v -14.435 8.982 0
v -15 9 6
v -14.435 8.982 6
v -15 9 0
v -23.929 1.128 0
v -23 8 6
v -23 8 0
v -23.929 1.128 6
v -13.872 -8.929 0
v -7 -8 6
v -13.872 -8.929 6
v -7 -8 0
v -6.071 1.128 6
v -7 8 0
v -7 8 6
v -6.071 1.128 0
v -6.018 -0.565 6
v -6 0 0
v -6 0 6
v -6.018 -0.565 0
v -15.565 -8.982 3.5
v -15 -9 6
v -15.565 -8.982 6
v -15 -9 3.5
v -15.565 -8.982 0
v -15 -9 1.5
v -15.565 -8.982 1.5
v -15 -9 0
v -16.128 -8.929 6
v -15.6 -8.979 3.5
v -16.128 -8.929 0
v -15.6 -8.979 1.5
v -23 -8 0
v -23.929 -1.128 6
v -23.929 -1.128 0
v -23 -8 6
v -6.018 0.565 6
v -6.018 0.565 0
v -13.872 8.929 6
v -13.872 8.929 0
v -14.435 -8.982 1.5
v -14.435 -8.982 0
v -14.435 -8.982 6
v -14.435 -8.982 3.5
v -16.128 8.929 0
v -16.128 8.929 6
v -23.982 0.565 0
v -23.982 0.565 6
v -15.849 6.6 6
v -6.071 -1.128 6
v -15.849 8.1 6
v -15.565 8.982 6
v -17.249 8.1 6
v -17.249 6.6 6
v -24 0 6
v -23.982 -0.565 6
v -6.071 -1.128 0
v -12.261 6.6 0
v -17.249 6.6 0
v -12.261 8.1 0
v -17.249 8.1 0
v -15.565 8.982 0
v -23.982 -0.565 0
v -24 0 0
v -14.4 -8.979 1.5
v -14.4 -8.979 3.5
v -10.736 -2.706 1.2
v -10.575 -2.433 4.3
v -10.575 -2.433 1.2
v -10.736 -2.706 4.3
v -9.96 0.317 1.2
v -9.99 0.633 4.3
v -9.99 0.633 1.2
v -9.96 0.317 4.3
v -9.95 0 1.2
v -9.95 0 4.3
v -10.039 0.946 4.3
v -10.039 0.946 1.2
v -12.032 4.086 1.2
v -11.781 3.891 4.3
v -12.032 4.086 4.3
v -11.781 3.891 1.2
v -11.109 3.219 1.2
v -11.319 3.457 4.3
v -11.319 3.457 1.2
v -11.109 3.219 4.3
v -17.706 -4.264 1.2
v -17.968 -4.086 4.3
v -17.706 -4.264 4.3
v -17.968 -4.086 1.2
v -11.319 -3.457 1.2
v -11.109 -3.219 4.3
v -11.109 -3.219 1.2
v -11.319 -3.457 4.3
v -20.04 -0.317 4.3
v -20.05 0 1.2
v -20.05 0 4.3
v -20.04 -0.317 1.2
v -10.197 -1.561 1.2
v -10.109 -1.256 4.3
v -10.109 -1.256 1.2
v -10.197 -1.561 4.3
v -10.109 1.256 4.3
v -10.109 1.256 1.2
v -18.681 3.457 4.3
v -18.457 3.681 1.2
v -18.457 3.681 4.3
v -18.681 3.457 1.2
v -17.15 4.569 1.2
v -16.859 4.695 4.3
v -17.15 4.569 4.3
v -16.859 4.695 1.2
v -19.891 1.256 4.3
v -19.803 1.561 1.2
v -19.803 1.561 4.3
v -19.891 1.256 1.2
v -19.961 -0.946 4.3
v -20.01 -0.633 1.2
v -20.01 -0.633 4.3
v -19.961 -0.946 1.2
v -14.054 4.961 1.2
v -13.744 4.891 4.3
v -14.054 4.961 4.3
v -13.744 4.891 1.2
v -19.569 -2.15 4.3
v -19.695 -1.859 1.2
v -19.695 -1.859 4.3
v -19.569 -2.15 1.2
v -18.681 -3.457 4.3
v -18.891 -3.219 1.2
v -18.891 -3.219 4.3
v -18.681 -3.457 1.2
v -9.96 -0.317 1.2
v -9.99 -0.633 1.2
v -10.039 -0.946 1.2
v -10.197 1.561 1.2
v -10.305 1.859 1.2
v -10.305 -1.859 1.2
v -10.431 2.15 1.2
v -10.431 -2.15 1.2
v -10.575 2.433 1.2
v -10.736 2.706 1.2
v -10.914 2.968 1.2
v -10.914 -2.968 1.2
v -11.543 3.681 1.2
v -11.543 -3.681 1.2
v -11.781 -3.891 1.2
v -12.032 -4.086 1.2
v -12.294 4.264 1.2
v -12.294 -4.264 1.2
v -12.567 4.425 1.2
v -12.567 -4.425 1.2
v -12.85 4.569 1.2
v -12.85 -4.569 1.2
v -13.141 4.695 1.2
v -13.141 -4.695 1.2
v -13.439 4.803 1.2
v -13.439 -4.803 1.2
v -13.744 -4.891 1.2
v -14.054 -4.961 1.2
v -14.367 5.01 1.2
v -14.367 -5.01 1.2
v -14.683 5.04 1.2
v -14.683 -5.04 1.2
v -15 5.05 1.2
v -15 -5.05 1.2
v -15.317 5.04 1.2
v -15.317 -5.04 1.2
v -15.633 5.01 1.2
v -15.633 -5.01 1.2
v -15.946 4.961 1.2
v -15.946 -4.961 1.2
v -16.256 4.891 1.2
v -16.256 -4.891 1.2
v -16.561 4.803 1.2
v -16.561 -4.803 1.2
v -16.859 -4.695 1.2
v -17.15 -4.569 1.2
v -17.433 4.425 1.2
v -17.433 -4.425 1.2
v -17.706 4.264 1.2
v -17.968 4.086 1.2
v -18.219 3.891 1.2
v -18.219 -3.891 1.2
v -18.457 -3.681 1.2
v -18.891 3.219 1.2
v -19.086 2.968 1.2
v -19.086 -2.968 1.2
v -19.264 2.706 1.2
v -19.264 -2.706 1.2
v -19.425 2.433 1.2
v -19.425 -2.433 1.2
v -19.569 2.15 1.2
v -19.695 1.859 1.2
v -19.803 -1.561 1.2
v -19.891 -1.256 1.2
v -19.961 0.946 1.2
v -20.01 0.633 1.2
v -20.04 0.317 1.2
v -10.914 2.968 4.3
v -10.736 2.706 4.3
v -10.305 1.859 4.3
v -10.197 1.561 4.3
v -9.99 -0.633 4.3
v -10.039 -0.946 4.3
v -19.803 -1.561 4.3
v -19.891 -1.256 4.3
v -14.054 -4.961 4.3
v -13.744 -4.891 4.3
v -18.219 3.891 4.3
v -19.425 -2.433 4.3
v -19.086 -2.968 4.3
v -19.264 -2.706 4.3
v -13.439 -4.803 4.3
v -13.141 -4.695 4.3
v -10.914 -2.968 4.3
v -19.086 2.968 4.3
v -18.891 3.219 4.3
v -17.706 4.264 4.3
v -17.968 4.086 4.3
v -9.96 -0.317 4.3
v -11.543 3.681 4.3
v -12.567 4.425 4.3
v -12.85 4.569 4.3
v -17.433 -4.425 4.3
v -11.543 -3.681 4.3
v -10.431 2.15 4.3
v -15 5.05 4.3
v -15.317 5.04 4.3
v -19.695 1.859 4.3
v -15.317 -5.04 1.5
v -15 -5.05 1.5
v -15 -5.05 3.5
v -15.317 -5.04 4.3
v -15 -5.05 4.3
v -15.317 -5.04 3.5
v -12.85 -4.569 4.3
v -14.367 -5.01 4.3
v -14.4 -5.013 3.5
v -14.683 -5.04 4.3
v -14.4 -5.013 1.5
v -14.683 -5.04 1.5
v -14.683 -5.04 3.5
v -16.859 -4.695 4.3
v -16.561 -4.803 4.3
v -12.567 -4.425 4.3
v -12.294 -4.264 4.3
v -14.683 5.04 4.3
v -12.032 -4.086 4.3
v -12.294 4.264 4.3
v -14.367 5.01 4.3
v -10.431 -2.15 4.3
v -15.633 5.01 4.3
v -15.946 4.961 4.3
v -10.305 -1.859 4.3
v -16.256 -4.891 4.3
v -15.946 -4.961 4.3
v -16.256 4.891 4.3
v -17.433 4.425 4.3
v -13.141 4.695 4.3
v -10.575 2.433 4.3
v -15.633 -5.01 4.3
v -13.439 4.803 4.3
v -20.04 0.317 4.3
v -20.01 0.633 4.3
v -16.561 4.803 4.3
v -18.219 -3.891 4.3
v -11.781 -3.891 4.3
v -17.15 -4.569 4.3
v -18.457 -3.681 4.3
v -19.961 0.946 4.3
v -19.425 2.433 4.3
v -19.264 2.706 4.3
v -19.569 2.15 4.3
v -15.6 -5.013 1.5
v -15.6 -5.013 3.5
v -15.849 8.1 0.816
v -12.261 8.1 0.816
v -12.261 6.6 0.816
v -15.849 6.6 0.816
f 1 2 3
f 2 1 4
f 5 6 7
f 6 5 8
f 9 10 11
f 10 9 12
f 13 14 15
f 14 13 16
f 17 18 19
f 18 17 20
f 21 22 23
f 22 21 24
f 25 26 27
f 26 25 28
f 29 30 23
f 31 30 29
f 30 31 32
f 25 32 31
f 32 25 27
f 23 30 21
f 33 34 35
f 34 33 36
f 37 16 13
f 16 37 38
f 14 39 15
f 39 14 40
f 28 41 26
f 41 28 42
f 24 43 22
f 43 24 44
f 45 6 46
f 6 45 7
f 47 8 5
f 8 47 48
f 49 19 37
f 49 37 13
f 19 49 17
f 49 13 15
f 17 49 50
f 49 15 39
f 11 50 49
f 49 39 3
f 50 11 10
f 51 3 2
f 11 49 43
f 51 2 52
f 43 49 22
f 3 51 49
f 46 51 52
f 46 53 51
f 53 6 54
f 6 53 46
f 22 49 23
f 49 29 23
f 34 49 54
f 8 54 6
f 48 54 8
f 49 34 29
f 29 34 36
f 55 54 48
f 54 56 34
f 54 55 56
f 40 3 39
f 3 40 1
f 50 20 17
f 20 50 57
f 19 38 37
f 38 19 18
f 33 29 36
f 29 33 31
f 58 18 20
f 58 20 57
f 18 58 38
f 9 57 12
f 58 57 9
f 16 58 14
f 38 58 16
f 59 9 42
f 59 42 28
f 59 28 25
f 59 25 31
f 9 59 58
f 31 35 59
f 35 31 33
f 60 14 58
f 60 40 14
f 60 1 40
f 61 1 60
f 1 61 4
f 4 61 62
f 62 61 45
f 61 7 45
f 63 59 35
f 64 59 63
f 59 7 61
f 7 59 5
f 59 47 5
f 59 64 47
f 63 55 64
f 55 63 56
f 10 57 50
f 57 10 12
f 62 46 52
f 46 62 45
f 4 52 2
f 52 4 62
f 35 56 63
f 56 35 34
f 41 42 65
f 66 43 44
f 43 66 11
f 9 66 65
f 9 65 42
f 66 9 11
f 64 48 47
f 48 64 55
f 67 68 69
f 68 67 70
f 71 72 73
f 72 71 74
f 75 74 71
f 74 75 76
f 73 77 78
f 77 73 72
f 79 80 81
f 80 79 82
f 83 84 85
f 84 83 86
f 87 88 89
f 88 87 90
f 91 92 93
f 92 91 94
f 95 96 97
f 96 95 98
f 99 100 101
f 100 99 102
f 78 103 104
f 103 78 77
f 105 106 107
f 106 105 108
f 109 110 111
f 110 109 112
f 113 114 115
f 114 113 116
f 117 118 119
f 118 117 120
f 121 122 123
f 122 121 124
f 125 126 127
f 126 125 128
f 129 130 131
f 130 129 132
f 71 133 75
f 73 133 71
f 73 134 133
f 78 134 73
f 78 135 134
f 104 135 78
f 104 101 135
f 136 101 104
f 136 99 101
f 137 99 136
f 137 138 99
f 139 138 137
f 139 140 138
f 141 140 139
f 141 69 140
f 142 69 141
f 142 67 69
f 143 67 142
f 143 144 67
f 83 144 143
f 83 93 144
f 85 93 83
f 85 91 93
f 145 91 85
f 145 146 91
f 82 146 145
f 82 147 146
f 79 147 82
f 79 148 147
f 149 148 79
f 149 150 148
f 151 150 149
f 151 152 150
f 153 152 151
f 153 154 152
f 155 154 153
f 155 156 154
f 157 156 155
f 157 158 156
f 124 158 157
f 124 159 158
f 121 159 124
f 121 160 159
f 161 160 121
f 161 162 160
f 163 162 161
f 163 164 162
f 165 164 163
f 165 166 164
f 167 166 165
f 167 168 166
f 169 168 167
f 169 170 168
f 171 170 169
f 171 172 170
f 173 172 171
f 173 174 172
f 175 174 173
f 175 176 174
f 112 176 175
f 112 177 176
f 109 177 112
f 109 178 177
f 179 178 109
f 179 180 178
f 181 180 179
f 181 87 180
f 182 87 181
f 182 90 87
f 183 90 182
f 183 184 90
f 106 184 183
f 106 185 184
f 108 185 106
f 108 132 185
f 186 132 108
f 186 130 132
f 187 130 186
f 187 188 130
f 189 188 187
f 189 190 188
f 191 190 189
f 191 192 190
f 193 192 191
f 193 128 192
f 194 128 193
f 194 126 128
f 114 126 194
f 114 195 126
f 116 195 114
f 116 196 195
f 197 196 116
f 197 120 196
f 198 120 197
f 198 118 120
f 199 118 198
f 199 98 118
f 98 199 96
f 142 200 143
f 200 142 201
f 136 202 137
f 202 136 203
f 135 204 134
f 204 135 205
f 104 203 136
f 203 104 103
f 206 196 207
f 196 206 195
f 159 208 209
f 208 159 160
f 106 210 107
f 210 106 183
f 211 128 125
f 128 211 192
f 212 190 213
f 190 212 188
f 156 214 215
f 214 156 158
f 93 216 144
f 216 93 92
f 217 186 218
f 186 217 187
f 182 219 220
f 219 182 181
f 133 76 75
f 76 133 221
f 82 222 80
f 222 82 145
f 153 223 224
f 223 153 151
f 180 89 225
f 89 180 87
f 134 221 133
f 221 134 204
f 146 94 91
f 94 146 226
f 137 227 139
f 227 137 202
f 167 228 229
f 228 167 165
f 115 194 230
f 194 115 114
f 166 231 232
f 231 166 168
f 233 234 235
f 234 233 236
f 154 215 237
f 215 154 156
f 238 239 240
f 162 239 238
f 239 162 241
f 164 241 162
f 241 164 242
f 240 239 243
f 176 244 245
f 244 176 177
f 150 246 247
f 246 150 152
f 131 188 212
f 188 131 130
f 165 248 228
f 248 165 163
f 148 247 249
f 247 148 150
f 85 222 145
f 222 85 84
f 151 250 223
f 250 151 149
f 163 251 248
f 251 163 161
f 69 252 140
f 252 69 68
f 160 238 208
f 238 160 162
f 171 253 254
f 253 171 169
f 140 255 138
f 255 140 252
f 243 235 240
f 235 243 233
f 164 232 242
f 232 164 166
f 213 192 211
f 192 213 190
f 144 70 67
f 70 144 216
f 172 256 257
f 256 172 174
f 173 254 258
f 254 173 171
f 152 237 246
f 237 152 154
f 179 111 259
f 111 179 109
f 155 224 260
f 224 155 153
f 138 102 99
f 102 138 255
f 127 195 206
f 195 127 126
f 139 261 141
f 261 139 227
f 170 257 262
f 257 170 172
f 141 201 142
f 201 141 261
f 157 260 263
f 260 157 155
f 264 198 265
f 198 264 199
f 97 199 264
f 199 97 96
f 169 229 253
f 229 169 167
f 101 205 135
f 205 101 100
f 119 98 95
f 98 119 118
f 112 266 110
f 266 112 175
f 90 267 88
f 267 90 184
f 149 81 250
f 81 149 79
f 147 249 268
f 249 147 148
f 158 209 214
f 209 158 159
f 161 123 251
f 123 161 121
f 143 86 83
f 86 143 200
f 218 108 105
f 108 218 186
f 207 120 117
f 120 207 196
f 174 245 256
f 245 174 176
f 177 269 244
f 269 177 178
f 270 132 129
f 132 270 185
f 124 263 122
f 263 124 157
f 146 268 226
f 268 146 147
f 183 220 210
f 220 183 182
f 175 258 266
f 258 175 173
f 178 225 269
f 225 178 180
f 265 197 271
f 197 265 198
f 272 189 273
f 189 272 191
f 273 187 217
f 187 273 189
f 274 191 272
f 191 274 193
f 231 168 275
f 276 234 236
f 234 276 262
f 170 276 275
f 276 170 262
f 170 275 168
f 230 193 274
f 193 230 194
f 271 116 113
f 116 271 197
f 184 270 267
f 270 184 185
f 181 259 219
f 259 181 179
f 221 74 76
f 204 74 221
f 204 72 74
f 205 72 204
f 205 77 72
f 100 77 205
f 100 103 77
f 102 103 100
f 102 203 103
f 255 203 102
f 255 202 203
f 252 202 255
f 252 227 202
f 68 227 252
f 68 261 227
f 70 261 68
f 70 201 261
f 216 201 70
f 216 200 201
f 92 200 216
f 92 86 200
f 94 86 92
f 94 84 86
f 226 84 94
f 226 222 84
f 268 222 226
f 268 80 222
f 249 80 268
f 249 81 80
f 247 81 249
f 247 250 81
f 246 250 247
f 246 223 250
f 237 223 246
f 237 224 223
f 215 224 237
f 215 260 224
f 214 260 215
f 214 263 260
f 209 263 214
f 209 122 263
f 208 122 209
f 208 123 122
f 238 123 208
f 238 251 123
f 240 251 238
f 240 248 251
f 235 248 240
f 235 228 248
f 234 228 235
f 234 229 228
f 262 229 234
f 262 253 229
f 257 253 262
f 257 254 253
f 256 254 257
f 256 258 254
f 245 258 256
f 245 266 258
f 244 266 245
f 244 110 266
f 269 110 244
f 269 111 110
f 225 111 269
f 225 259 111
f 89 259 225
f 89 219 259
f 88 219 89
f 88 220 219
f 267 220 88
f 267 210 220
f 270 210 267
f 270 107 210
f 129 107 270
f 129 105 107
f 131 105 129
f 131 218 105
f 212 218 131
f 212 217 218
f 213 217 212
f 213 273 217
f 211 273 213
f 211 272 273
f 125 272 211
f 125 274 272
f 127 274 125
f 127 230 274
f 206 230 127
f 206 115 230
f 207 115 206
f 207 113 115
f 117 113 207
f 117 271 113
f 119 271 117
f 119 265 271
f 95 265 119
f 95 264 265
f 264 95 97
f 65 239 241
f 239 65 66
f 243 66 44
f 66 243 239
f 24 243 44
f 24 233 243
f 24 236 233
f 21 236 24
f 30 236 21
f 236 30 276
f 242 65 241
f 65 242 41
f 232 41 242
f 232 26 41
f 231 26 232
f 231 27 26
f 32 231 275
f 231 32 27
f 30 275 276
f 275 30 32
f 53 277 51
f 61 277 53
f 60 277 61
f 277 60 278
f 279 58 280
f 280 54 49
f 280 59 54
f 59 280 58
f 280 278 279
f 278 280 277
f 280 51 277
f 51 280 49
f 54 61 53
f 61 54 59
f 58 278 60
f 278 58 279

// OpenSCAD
// V51 Pacer Saddle - Optimized for Vybronics VG1030001XH
// Specs: 10mm Dia, 3mm Thick, AWG 30 Leads

module v51_saddle(side_label) {
    difference() {
        // Main Body: Curved to sit against headphone battery pods
        hull() {
            translate([-8, -8, 0]) cube([16, 16, 6]);
            translate([0, 0, 0]) cylinder(d=18, h=6, $fn=100);
        }

        // Motor Cavity (Skin-side)
        // 10.1mm gives a snug press-fit for the 10mm LRA [cite: 154]
        translate([0, 0, 1.2]) 
            cylinder(d=10.1, h=3.1, $fn=100);

        // Wire Exit Trench
        // 1.2mm width is perfect for the AWG 30 UL3302 wires [cite: 161]
        translate([0, -8, 2.5]) 
            cube([1.2, 12, 2], center=true);

        // Embossed Channel Identifier
        // Subtracts "L" or "R" 1mm deep into the side wall
        translate([0, 8.1, 3]) 
            rotate([90, 0, 0]) 
                linear_extrude(height = 1.5) 
                    text(side_label, size=7, font="Arial:style=Bold", halign="center", valign="center");
    }
}

// RENDER COMMANDS
// To export, uncomment one side at a time
translate([-15, 0, 0]) v51_saddle("L"); 
//translate([15, 0, 0]) v51_saddle("R");
